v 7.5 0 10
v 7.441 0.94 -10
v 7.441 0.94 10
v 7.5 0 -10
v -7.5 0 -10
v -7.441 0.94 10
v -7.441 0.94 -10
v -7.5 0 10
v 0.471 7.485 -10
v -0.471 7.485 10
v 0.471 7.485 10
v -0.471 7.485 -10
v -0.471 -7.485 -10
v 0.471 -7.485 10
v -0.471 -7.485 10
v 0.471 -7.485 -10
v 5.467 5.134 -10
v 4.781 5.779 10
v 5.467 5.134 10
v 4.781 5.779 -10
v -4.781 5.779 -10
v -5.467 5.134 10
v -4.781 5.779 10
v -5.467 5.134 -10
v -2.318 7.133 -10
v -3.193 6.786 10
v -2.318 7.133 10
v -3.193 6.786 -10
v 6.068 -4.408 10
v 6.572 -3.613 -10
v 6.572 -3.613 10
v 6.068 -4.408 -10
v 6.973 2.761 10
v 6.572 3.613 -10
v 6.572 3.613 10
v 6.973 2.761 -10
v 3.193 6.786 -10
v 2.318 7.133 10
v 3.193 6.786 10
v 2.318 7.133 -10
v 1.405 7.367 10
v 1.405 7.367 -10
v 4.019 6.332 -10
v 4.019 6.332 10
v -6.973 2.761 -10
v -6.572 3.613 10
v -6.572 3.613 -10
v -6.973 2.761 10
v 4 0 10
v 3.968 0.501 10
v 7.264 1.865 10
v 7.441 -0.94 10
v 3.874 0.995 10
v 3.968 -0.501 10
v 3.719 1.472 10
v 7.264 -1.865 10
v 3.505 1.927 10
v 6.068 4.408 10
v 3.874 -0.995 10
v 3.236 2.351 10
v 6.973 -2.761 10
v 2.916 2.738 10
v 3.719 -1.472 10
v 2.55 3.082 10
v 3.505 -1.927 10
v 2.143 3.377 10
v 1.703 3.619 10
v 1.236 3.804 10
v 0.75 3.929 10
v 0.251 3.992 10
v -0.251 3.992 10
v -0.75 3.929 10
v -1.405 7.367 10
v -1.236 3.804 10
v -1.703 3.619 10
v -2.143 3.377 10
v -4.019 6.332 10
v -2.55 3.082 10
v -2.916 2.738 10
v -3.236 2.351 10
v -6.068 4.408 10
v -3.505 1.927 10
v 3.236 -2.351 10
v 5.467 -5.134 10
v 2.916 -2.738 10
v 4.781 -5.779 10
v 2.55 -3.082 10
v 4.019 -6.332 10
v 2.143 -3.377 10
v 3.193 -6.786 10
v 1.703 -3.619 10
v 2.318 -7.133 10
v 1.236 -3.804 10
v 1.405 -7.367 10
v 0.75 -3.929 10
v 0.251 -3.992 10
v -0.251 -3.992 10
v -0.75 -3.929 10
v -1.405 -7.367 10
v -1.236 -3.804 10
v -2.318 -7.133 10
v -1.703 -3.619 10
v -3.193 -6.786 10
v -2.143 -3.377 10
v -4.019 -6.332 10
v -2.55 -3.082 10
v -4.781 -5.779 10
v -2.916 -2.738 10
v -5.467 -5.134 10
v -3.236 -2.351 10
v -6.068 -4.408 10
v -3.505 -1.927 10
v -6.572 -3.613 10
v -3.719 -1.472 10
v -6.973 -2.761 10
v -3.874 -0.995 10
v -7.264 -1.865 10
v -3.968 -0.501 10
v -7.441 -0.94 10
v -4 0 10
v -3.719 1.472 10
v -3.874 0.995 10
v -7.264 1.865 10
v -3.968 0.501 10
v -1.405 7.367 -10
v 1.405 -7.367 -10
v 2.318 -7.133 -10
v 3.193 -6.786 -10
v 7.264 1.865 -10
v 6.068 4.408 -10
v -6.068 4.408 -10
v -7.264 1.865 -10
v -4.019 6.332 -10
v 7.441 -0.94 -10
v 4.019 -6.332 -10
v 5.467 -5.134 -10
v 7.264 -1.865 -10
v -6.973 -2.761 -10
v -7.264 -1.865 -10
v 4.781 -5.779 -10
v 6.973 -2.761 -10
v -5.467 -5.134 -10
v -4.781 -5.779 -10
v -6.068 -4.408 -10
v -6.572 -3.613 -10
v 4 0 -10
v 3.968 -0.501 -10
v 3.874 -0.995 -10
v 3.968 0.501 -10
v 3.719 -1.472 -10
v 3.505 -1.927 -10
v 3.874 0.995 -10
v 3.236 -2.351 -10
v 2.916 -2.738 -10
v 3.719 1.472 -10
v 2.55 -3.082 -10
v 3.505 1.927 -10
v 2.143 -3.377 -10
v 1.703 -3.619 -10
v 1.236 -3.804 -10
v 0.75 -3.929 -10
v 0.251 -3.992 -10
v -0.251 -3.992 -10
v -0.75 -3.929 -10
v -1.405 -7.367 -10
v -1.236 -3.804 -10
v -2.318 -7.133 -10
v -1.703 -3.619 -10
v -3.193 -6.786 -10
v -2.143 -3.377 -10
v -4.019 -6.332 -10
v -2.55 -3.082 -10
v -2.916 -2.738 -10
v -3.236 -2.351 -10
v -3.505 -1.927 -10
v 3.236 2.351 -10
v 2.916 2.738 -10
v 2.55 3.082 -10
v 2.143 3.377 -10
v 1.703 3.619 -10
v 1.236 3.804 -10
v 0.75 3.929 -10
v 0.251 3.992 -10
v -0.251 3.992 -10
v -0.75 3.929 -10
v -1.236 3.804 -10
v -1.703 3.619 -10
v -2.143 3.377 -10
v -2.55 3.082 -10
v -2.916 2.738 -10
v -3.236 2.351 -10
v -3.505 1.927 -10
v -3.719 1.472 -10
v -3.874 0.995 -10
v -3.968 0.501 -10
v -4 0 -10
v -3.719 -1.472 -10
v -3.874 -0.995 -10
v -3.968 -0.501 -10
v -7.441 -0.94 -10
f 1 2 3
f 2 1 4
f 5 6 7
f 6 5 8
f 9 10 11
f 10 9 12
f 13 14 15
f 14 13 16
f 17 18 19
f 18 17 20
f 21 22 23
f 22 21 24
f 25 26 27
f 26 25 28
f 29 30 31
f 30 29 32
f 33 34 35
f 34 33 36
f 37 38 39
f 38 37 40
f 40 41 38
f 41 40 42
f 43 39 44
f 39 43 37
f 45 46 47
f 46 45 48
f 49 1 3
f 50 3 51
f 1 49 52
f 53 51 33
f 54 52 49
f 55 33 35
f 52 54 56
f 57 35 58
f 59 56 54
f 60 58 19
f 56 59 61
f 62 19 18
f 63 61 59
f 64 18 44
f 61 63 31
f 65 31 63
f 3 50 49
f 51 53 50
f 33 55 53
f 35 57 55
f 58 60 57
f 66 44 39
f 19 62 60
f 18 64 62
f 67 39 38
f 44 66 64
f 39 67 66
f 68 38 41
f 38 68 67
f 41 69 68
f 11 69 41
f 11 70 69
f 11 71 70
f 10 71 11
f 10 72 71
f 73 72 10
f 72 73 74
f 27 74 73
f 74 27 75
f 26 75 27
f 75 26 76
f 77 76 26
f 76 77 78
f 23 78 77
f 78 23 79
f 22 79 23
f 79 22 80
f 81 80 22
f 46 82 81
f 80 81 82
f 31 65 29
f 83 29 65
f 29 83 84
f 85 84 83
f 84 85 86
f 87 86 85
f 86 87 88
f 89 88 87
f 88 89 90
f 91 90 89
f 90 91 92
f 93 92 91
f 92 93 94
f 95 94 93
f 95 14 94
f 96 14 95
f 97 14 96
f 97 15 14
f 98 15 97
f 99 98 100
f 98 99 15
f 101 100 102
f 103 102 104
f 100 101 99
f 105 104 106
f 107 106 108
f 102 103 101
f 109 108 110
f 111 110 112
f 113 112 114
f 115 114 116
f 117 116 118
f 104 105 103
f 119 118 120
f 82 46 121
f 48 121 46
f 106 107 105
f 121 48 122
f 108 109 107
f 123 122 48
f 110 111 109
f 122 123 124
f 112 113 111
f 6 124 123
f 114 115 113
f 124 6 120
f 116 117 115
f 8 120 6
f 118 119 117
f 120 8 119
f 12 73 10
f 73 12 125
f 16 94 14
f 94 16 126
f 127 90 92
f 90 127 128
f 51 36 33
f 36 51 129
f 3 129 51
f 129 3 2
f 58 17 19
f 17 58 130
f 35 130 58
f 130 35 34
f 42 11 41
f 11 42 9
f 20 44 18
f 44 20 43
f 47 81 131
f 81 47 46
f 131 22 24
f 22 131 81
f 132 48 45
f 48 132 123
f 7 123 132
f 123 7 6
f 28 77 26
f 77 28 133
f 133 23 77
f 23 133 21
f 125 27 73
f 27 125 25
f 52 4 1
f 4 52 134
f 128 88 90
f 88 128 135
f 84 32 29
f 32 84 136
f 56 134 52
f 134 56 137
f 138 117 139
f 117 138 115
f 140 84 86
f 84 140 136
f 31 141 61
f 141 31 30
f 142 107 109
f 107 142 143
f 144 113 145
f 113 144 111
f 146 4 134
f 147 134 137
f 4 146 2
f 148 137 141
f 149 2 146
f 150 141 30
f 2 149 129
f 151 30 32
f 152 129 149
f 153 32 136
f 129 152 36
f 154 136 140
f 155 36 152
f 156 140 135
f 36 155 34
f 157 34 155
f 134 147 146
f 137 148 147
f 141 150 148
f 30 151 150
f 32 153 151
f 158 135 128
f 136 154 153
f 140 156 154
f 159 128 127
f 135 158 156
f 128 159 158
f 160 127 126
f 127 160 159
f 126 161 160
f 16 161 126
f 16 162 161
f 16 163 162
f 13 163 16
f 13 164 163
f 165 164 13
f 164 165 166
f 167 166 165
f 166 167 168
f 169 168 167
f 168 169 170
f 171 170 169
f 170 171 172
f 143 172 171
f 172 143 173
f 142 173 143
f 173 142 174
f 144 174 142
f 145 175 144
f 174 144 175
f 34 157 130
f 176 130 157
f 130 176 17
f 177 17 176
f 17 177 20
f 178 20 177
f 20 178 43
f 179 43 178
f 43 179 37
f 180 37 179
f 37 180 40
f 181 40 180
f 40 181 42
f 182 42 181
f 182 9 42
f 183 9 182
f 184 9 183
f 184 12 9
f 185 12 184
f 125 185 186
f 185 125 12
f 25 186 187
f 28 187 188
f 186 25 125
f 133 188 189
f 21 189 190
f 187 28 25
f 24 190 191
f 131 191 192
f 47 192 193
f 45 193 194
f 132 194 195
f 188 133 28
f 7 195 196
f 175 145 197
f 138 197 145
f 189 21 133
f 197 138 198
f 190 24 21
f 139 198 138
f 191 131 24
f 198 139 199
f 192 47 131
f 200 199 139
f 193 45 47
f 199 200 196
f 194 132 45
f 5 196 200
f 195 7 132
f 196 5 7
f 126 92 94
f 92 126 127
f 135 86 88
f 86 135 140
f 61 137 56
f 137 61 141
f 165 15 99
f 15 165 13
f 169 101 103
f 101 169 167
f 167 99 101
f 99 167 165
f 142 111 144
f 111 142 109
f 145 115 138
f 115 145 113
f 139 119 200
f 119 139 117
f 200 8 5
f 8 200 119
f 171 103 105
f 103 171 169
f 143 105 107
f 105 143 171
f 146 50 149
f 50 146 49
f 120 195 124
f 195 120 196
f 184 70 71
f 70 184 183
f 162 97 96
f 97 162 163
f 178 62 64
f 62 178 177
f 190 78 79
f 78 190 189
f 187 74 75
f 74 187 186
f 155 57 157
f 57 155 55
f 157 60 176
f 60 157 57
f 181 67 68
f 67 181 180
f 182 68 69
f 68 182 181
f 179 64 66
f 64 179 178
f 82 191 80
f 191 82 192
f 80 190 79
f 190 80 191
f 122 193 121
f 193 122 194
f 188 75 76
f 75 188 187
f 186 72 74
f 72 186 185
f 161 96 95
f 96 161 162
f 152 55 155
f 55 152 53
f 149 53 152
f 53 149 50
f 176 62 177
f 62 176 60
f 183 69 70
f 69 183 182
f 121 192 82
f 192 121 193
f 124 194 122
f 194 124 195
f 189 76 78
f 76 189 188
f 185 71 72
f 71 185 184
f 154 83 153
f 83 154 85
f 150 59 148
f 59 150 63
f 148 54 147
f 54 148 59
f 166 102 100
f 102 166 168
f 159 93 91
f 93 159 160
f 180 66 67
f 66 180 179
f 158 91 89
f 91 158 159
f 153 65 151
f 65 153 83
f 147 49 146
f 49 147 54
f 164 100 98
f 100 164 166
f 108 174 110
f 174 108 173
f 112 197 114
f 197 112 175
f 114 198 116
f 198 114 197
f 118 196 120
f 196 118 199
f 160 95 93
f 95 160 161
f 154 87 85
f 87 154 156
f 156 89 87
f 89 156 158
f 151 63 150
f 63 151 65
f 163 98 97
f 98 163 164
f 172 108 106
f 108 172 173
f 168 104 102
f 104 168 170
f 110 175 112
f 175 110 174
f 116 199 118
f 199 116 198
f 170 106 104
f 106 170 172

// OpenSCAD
$fn = 50;


difference() {
	union() {
		translate(v = [0, 0, -10.0000000000]) {
			cylinder(h = 20, r = 7.5000000000);
		}
	}
	union() {
		translate(v = [0, 0, -100.0000000000]) {
			cylinder(h = 200, r = 4.0000000000);
		}
	}
}
